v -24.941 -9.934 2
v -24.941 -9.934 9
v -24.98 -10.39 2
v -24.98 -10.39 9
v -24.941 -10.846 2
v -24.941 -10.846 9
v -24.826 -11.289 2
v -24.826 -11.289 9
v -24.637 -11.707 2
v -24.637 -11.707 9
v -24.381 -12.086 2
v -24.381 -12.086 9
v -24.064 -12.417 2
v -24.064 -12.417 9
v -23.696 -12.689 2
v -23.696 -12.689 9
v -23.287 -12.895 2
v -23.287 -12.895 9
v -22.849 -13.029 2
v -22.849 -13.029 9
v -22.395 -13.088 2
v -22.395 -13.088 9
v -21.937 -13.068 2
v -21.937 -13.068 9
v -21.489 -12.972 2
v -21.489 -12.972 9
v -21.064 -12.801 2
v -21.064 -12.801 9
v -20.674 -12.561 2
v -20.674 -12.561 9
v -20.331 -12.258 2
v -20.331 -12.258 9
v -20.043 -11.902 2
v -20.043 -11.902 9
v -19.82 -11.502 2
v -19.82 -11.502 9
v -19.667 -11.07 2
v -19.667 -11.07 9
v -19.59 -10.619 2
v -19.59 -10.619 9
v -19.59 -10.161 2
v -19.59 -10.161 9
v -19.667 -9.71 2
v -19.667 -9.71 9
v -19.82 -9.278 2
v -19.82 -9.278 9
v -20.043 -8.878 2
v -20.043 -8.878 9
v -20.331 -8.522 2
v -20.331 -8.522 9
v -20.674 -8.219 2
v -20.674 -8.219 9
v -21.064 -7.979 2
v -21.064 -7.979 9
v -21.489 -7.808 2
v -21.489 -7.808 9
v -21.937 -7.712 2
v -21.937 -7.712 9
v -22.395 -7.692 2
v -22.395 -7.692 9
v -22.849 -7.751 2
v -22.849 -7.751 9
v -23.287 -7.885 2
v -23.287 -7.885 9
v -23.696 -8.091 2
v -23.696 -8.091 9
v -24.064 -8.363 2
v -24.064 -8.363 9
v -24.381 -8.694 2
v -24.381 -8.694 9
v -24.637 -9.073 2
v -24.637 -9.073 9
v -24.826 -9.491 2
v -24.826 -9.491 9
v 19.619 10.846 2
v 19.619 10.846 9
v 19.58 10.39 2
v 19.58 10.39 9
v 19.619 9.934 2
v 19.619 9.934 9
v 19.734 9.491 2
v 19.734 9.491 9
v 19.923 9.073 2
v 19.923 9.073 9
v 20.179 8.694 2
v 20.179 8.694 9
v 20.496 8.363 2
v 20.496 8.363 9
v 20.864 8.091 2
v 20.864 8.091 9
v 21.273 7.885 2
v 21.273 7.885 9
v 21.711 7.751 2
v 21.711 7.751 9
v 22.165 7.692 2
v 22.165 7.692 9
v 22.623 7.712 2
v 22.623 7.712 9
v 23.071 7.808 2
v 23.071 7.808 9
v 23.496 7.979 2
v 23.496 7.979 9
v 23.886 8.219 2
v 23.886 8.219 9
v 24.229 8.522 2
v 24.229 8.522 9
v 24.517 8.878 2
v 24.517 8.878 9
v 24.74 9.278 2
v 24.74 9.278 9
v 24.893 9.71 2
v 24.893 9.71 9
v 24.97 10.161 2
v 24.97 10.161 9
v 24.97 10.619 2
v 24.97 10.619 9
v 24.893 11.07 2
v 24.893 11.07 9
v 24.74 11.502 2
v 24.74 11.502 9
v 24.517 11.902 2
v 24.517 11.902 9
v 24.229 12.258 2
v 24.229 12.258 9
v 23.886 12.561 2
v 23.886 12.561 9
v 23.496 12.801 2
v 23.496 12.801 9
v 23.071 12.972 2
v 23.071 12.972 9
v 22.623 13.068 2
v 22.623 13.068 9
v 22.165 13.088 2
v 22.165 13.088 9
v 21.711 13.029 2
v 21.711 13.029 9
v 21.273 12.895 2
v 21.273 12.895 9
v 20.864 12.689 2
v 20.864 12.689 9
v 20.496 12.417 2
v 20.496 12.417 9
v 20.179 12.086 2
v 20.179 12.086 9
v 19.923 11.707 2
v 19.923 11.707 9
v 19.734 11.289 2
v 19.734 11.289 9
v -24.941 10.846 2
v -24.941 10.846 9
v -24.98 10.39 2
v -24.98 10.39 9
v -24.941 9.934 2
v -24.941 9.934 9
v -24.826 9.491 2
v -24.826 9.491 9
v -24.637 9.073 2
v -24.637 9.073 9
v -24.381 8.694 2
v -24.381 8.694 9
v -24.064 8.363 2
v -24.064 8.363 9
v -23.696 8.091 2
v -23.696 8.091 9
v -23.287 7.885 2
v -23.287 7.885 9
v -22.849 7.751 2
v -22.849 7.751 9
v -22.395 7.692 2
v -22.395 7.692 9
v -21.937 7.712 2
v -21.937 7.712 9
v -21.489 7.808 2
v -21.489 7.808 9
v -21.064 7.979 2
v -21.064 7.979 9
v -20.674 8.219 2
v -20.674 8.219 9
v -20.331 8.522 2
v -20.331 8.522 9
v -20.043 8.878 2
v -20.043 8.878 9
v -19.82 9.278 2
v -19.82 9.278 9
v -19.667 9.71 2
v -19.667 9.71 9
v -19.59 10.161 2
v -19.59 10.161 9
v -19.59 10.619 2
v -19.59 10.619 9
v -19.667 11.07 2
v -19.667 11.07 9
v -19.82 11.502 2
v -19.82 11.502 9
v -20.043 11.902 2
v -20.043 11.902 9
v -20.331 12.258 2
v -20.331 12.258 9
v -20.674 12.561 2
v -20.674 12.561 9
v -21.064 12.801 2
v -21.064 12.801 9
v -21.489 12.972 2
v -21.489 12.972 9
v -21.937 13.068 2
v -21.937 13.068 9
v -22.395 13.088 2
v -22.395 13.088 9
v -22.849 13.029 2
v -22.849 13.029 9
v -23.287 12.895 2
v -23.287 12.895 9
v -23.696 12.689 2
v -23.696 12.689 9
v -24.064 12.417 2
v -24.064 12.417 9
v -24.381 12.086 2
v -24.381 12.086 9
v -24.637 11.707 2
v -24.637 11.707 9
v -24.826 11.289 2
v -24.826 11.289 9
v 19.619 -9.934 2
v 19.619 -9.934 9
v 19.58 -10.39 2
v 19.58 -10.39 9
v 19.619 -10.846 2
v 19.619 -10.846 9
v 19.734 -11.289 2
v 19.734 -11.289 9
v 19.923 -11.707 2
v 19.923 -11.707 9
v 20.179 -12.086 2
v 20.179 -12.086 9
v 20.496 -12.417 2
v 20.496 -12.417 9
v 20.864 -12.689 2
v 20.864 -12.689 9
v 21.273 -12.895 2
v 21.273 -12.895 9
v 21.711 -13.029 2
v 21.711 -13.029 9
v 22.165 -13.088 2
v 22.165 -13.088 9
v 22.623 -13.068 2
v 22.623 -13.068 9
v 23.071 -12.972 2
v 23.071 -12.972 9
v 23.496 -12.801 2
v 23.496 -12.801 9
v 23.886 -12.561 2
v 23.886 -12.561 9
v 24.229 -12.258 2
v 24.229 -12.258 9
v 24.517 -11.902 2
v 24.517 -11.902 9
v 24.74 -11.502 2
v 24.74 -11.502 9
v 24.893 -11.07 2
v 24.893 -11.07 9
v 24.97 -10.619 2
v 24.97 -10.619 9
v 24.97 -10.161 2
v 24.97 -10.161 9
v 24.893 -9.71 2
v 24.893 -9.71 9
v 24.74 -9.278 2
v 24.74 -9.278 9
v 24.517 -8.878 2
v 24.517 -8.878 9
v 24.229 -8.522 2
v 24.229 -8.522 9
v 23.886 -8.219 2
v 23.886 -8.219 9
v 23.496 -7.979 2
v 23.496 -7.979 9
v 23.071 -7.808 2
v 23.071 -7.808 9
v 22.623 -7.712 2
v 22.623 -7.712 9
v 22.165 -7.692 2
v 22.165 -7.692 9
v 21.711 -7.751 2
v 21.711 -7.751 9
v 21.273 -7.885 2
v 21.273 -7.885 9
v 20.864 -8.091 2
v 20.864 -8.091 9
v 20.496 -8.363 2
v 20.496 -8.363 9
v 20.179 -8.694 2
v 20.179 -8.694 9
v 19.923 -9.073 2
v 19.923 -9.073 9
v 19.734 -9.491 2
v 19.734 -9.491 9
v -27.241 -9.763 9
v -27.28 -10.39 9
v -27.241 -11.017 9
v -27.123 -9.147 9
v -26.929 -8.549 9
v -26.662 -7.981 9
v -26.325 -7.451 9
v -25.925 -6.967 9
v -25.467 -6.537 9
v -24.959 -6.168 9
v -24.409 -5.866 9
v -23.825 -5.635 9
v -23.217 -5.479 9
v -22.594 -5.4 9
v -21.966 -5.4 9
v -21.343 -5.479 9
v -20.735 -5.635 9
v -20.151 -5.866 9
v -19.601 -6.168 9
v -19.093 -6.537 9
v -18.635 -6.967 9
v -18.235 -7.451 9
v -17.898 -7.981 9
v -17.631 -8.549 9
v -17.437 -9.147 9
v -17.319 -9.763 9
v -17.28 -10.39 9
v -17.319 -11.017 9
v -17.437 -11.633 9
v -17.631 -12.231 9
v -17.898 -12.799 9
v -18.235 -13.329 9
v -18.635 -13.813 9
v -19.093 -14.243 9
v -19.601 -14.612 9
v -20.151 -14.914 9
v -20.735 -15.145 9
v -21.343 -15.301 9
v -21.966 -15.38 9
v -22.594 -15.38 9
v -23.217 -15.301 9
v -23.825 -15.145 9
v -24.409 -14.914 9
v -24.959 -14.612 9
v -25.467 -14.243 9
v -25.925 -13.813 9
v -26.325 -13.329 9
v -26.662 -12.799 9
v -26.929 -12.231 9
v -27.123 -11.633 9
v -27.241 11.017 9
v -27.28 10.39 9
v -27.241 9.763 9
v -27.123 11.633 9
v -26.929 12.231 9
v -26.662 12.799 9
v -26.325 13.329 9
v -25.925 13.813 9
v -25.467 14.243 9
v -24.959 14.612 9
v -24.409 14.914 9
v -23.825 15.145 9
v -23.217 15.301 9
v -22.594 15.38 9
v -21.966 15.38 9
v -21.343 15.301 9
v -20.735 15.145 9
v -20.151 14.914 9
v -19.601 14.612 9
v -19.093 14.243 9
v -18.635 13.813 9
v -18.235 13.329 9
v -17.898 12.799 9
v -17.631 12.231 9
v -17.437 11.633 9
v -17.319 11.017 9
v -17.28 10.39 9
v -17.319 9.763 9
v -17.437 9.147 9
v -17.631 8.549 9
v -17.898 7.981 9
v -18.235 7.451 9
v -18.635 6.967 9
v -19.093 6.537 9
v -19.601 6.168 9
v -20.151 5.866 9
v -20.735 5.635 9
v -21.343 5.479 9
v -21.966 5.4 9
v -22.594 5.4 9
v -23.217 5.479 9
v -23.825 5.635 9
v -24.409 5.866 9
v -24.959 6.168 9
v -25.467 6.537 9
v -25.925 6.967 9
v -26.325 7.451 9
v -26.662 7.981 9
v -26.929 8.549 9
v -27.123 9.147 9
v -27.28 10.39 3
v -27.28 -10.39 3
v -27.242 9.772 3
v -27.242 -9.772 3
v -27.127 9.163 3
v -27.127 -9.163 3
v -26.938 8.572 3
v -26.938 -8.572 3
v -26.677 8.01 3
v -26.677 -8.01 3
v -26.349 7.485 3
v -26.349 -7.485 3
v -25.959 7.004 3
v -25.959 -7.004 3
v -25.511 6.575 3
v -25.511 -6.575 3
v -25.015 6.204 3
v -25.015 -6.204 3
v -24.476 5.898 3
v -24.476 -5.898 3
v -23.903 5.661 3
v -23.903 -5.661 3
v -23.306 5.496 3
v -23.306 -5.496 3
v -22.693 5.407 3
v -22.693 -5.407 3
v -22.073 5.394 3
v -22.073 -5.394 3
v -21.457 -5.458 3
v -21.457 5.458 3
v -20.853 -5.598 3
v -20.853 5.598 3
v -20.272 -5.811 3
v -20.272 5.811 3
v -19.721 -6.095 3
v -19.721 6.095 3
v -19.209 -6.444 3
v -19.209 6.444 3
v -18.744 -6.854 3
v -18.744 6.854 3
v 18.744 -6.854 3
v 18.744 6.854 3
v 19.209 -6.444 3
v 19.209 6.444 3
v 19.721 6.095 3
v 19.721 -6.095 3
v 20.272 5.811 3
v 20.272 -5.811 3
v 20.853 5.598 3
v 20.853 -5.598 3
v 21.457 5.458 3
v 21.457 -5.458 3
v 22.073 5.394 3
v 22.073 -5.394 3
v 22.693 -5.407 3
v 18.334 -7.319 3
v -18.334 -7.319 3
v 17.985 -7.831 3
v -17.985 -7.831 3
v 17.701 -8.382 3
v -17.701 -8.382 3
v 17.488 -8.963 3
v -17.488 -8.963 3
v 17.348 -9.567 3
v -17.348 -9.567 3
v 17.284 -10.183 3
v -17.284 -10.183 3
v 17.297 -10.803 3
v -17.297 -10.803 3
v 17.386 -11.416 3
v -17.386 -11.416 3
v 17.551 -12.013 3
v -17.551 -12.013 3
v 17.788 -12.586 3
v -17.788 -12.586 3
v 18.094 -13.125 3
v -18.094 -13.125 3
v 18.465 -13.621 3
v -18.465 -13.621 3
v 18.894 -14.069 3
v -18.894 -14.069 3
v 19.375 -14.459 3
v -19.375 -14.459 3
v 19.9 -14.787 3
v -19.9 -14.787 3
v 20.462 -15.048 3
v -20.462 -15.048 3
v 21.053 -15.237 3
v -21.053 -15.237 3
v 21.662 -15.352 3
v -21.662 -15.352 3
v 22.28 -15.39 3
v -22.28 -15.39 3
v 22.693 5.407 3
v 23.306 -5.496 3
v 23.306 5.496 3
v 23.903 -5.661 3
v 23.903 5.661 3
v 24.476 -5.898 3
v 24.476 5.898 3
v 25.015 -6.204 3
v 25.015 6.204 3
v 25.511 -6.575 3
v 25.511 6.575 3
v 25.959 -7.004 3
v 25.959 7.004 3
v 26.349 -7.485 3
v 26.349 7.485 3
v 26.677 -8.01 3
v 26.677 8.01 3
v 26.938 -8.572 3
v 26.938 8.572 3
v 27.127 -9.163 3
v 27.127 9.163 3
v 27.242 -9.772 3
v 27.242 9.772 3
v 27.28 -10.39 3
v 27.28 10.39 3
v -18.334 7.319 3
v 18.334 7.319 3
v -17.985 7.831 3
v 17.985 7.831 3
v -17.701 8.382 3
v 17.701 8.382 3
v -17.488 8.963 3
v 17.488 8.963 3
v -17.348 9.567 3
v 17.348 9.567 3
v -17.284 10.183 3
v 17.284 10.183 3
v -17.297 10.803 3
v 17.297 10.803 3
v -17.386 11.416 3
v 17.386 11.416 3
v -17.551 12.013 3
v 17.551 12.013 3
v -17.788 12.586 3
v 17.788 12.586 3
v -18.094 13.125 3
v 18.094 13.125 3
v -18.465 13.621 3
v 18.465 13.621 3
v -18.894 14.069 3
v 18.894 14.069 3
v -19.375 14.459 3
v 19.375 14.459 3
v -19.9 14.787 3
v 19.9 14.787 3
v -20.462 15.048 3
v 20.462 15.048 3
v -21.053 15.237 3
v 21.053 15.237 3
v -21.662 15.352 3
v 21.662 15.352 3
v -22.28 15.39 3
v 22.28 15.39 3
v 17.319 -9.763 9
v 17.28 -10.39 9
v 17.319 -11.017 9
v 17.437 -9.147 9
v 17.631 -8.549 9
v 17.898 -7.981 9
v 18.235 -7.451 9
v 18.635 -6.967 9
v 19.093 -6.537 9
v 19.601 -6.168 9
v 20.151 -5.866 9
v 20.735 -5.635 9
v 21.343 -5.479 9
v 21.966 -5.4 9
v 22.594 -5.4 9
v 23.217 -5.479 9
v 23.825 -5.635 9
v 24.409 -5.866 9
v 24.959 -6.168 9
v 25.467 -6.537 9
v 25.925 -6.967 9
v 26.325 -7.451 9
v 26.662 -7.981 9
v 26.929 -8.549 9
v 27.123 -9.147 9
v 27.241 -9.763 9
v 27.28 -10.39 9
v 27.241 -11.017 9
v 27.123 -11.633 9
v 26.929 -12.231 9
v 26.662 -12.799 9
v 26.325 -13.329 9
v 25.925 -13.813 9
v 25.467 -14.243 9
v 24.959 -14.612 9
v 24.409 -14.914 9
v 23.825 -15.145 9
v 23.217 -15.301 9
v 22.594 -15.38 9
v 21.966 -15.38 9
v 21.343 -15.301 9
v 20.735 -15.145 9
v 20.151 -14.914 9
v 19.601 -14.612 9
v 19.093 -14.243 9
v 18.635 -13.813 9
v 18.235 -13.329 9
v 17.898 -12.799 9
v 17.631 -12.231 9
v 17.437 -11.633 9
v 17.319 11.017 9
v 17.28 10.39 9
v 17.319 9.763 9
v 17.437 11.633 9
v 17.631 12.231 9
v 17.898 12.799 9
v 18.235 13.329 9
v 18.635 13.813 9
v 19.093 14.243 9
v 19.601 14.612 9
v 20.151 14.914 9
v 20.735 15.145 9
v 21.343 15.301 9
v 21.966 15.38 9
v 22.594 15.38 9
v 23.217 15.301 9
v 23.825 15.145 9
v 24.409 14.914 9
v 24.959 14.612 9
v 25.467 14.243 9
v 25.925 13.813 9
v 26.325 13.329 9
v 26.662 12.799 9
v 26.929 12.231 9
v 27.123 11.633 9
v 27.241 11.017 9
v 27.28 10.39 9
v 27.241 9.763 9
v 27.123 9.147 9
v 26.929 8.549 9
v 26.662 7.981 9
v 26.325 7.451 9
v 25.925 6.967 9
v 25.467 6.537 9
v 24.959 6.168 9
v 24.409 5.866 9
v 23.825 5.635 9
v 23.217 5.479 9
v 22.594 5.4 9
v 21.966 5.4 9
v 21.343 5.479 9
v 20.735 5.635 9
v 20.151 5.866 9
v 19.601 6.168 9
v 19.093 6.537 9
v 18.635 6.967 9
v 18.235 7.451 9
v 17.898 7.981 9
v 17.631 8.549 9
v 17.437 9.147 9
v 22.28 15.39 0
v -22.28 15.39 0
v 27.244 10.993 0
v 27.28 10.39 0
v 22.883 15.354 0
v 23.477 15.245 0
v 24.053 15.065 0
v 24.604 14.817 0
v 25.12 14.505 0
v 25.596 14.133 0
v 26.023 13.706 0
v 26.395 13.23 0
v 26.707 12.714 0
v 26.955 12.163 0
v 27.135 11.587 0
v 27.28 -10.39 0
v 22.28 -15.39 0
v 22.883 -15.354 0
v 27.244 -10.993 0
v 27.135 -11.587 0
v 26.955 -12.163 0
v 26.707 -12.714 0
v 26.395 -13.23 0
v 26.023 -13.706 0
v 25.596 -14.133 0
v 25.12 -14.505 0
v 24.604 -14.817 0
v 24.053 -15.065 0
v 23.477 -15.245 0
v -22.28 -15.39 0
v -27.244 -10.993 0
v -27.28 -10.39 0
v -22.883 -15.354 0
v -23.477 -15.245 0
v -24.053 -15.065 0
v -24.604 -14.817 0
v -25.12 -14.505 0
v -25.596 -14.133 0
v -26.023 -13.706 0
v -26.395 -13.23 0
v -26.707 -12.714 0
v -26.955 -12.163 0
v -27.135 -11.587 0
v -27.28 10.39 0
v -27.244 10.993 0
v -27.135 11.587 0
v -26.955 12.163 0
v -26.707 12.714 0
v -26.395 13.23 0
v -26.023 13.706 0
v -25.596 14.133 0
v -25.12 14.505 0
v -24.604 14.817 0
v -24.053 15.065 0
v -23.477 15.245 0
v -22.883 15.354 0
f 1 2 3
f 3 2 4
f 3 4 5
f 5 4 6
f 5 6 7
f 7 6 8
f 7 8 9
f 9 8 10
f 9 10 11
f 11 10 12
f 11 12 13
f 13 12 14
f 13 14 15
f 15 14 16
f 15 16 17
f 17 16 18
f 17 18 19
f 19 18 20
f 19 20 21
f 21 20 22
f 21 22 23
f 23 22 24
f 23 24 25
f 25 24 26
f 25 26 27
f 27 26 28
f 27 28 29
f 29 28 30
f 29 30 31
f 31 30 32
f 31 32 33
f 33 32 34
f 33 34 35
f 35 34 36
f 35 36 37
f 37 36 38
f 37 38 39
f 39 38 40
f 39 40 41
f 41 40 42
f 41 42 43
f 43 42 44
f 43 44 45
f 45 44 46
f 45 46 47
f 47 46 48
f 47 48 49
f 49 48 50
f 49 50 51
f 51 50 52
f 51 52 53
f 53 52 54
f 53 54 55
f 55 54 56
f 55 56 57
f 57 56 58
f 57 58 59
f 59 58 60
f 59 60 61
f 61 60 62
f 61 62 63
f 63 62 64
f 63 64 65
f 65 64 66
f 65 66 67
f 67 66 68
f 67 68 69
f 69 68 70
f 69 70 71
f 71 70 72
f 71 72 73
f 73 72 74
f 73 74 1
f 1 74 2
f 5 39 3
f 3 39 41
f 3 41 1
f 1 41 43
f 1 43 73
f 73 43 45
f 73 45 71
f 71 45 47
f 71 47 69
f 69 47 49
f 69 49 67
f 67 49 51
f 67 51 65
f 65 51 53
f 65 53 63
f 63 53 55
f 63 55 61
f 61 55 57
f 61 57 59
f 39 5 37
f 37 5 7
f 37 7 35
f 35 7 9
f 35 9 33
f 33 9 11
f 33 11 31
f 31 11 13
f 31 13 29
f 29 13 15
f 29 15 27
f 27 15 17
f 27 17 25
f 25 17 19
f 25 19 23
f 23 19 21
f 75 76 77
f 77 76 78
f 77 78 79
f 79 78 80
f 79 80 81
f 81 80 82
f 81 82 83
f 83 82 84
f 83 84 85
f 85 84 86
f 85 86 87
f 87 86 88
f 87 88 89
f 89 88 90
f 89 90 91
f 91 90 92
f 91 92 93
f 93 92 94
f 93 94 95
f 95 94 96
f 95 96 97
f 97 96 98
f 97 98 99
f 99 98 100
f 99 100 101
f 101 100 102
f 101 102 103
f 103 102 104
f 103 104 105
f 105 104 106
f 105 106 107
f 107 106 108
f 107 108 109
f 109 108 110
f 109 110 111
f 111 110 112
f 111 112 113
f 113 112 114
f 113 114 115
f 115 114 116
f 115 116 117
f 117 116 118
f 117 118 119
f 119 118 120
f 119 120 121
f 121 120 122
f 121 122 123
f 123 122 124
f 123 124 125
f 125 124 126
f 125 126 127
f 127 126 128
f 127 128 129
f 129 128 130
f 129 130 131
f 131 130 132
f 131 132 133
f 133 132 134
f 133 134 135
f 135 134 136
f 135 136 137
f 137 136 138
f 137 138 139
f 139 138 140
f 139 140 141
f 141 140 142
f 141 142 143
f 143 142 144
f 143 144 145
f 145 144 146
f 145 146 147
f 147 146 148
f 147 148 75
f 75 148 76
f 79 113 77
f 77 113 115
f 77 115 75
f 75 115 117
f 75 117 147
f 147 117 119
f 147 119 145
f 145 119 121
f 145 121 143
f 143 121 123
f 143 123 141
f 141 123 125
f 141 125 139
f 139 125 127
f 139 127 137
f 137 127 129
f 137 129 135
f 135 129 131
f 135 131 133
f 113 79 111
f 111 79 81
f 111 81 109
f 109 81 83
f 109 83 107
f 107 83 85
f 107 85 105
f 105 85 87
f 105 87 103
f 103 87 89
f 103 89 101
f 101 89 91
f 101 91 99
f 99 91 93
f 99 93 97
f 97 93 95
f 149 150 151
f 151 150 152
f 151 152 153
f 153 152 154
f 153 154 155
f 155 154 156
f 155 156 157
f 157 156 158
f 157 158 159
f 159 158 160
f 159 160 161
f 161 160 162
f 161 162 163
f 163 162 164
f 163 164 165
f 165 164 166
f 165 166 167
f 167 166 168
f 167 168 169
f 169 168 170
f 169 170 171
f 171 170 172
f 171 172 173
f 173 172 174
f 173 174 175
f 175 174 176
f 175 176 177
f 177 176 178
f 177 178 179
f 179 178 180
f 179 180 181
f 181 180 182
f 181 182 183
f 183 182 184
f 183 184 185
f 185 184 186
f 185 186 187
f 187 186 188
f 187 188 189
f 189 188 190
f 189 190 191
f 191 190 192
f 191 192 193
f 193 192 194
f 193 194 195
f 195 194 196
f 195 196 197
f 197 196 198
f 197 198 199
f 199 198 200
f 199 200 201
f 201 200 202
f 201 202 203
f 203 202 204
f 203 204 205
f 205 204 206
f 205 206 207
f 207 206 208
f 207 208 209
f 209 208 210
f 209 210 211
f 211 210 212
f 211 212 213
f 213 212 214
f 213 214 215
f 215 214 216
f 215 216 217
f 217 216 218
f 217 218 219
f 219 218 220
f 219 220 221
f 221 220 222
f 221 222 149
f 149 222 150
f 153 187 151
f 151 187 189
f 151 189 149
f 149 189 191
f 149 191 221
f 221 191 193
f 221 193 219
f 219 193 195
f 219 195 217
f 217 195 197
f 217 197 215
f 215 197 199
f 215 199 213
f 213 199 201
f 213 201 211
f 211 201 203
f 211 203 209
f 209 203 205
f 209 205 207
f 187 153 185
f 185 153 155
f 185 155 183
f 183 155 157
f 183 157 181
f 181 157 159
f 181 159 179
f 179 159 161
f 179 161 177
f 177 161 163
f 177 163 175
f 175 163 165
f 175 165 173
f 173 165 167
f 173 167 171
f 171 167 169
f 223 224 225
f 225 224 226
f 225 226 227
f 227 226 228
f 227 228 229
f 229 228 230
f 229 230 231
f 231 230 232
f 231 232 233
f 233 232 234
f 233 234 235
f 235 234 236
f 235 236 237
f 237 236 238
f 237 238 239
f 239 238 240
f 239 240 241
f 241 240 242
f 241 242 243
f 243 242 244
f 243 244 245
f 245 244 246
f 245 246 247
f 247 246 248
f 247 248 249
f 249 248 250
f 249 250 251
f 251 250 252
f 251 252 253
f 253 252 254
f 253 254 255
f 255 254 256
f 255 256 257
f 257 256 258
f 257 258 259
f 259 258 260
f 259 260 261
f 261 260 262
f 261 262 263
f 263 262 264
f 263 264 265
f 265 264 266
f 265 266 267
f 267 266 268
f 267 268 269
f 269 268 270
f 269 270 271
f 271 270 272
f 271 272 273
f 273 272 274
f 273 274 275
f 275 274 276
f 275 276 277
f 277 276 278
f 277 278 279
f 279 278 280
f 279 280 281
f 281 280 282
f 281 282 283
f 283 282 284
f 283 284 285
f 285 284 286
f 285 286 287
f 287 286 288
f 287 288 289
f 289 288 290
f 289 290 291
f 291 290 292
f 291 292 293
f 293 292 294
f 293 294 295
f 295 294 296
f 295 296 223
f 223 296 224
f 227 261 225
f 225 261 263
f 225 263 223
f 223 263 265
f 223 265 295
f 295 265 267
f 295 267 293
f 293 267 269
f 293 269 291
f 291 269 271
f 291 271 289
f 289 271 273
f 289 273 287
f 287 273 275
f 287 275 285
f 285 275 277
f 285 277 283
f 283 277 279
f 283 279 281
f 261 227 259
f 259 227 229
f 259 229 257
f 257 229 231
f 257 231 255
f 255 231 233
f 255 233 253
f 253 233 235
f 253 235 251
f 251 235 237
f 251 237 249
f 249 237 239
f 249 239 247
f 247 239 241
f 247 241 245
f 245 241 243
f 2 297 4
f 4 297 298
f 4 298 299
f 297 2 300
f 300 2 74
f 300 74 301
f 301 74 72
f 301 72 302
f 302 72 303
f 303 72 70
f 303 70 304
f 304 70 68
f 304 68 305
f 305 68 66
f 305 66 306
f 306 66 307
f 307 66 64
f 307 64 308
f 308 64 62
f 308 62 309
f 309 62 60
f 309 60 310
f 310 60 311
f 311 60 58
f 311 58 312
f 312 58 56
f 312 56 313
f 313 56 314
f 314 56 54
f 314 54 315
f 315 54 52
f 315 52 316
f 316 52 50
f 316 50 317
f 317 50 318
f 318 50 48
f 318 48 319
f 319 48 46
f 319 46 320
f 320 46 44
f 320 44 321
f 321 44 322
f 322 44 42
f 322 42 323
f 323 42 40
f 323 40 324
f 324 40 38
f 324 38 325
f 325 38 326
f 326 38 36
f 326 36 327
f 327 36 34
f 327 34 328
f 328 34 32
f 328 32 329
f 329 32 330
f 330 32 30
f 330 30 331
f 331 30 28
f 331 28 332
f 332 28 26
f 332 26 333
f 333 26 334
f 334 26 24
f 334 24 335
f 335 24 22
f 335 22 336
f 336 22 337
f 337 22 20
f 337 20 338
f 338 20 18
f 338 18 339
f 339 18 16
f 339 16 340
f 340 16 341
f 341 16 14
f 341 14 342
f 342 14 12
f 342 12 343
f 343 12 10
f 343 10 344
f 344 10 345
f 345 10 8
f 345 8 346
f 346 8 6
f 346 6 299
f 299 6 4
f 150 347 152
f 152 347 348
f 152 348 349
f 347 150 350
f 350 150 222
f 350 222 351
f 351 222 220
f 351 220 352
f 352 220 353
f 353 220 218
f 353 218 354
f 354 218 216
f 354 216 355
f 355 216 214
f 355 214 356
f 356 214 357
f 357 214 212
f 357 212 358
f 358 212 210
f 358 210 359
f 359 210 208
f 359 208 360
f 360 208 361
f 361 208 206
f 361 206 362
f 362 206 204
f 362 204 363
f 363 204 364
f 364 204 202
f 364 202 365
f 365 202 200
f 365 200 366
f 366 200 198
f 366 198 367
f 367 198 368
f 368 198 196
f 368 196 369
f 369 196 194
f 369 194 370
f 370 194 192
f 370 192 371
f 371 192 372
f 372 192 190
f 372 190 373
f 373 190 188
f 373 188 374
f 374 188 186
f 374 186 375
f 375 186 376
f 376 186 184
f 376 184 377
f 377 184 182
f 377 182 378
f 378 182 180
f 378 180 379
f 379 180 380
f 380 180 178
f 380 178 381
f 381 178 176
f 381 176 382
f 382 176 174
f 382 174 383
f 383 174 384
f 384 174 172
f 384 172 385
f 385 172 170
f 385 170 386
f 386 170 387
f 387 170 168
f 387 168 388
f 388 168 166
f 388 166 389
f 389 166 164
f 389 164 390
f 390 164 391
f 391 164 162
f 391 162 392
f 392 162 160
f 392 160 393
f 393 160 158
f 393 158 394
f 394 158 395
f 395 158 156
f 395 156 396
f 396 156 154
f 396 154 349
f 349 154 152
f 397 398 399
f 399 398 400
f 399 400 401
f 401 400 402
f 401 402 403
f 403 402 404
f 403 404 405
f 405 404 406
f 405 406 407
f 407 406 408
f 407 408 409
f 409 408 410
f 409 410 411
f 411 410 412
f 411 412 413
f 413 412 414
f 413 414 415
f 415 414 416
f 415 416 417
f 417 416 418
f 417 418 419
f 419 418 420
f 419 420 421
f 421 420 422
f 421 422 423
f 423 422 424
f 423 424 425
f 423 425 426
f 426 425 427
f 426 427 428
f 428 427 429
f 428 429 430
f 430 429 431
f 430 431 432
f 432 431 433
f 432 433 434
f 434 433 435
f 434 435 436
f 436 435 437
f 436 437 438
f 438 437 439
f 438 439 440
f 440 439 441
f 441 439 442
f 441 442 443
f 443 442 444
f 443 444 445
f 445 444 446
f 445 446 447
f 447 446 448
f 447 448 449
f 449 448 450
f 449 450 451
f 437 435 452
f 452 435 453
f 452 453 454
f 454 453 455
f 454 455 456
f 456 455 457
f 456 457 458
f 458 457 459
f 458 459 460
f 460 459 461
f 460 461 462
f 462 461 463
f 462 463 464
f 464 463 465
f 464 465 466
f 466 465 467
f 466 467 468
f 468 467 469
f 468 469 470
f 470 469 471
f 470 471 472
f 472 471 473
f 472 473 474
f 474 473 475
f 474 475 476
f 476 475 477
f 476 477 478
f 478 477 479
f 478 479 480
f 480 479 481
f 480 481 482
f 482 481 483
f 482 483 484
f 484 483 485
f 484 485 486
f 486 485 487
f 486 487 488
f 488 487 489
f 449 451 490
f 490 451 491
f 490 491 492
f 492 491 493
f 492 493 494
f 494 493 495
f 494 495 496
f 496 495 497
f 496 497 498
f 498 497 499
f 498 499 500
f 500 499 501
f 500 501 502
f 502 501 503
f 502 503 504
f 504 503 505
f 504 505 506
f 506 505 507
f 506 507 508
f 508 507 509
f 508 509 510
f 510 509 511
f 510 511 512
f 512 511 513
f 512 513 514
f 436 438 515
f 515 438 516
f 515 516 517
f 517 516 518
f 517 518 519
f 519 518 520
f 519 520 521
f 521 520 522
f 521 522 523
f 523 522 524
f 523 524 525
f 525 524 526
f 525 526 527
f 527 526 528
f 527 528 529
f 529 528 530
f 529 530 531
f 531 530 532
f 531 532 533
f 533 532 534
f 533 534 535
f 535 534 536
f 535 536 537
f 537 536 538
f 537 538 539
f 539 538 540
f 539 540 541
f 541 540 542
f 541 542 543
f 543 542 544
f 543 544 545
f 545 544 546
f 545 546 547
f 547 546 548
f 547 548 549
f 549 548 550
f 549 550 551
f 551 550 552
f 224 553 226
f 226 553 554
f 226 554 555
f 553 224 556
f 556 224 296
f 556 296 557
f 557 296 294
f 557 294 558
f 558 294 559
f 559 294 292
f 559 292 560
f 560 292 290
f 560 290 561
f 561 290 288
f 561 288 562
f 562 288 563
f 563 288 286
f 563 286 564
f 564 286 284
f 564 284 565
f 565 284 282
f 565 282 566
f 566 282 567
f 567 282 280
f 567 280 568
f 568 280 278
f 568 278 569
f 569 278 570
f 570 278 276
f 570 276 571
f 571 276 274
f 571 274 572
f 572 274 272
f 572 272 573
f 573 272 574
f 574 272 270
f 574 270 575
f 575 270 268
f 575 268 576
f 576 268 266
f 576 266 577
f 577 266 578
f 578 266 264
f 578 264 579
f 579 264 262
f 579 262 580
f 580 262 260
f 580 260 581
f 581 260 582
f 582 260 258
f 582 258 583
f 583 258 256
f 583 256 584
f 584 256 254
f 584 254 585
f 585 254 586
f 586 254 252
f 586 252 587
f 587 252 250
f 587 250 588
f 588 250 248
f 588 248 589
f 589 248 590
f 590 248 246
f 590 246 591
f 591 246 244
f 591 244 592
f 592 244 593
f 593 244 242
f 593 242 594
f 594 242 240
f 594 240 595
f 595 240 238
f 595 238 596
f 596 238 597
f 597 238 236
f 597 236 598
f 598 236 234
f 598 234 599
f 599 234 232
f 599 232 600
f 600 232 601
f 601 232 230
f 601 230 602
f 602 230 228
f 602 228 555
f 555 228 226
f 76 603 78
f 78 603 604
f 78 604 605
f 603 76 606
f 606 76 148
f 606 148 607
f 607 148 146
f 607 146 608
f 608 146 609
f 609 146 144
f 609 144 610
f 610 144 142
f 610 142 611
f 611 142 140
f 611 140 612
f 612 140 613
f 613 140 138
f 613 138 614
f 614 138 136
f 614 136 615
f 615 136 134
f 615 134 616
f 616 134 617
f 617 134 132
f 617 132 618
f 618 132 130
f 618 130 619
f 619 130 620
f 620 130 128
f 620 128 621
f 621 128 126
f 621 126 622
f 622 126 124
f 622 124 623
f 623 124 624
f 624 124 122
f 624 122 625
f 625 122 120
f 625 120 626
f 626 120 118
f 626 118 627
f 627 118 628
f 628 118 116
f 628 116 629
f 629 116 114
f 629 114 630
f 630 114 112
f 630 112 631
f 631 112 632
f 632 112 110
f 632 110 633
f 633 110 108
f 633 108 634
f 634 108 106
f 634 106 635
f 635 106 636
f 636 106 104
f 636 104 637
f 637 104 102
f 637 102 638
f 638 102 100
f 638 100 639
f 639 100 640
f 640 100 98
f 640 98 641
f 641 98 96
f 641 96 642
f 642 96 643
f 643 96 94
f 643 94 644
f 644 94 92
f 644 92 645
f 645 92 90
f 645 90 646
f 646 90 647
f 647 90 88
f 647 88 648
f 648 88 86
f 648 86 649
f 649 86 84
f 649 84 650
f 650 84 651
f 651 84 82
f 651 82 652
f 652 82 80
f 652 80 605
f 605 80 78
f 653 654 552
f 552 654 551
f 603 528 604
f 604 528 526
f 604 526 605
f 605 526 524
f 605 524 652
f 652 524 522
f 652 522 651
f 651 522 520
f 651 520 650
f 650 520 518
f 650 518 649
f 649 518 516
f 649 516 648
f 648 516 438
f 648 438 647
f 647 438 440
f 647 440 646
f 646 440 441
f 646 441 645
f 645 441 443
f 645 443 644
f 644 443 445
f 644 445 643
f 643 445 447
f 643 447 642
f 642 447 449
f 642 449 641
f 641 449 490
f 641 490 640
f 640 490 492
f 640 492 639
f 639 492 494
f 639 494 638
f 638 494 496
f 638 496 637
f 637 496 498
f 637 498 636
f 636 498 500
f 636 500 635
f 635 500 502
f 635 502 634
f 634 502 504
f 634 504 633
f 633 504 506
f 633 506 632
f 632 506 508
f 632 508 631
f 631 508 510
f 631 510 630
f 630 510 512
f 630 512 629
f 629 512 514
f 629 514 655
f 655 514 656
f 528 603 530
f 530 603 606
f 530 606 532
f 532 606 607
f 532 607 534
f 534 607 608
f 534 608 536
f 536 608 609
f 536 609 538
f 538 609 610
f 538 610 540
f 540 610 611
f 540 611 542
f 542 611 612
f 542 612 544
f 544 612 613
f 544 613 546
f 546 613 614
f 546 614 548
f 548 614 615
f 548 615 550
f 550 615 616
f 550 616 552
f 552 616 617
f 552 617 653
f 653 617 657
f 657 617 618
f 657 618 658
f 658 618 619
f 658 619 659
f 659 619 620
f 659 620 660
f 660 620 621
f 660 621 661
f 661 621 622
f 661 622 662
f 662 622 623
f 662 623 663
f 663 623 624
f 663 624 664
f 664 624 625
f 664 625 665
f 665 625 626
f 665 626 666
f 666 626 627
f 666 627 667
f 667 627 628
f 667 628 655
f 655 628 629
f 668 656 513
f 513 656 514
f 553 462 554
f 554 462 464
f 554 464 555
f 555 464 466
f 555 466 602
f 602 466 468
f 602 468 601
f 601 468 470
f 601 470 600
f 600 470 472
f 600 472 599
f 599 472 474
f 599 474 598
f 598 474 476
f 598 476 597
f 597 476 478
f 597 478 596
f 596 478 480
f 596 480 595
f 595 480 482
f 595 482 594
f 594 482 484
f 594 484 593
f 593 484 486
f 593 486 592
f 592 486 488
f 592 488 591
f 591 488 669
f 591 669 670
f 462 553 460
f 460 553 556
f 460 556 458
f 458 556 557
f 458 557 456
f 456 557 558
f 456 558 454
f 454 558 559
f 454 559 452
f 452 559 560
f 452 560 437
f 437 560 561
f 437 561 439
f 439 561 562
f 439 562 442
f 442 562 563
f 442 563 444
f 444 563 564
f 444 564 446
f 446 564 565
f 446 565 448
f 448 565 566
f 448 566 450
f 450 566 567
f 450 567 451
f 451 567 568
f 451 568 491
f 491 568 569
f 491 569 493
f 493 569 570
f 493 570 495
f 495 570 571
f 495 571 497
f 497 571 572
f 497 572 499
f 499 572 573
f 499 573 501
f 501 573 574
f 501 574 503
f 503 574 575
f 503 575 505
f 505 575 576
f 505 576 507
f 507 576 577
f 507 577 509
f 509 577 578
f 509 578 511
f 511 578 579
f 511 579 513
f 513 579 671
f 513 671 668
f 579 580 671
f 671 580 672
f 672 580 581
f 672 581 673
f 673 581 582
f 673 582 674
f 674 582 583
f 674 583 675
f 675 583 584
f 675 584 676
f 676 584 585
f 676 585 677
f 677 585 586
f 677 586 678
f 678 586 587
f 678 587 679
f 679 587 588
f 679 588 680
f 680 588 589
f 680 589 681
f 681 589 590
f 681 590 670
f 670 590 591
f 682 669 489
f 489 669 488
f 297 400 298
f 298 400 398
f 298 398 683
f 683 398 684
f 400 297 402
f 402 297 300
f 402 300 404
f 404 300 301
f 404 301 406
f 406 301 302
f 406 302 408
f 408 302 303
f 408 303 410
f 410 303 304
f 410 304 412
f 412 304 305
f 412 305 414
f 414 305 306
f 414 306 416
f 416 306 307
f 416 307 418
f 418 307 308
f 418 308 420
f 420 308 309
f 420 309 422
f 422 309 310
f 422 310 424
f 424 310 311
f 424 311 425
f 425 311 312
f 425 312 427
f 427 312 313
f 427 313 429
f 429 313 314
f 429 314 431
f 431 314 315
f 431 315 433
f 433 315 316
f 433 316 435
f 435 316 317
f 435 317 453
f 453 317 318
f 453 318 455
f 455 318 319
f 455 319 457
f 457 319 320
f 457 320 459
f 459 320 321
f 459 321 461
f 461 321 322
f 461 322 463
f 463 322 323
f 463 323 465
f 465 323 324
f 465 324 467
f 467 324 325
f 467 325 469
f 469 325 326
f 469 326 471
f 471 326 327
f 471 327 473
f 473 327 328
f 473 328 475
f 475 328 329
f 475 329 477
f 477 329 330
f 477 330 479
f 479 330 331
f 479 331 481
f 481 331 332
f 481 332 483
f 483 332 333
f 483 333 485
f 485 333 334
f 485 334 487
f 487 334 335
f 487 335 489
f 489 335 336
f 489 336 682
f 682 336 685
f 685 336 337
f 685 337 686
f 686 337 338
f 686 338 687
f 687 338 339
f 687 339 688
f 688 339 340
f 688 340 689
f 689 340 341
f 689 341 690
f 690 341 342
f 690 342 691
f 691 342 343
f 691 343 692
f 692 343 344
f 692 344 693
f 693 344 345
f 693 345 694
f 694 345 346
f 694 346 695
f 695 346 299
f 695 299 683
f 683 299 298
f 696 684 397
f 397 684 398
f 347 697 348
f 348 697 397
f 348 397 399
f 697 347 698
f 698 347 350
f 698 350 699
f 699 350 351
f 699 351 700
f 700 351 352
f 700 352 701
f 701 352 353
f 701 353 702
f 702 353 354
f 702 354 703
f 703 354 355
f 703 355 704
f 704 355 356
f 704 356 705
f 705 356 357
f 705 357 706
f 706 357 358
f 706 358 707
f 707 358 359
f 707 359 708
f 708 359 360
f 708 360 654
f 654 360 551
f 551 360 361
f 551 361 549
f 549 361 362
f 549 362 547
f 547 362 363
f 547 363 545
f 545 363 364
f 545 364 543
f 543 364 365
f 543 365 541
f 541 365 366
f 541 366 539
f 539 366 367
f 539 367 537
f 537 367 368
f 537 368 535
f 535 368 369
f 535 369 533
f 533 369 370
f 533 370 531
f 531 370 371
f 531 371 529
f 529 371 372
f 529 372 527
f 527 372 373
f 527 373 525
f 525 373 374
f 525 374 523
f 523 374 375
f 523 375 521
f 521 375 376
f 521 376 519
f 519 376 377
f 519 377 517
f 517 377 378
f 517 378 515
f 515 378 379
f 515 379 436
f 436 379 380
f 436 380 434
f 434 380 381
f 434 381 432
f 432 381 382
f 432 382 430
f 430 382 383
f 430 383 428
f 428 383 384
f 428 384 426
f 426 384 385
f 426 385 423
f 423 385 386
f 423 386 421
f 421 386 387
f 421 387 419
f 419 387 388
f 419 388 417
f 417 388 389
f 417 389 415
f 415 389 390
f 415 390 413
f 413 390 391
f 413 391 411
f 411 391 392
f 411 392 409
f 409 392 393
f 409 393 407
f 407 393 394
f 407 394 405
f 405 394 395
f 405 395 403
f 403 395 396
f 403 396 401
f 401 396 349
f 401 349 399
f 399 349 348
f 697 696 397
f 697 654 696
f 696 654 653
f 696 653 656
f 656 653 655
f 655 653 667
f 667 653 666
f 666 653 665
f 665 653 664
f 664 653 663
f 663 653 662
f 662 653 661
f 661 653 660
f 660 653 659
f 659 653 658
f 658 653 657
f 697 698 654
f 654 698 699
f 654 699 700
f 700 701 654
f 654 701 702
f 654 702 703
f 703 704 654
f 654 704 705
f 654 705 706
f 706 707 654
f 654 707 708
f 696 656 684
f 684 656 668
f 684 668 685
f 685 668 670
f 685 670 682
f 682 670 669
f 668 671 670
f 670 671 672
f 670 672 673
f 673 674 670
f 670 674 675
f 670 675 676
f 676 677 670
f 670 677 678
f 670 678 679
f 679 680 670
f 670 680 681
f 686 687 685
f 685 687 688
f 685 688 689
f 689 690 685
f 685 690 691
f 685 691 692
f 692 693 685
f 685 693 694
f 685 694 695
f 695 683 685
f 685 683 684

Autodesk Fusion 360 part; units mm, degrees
sketch "Sketch1" plane through (0, 0, 0) normal (0, 0, 1) x (1, 0, 0)
  line L0 (22.28, -10.39) -> (-22.28, -10.39) construction
  line L1 (-22.28, -10.39) -> (-22.28, 10.39) construction
  line L2 (-22.28, 10.39) -> (22.28, 10.39) construction
  line L3 (22.28, 10.39) -> (22.28, -10.39) construction
  line L4 (22.28, -10.39) -> (-22.28, 10.39) construction
  line L5 (-22.28, -10.39) -> (22.28, 10.39) construction
  circle A0 centre (22.28, 10.39) radius 5
  circle A1 centre (22.28, -10.39) radius 5
  circle A2 centre (-22.28, -10.39) radius 5
  circle A3 centre (-22.28, 10.39) radius 5
  line L6 (-22.28, 15.39) -> (22.28, 15.39)
  line L7 (-27.28, 10.39) -> (-27.28, -10.39)
  line L8 (27.28, 10.39) -> (27.28, -10.39)
  line L9 (-22.28, -15.39) -> (22.28, -15.39)
  circle A4 centre (22.28, 10.39) radius 2.7
  circle A5 centre (-22.28, 10.39) radius 2.7
  circle A6 centre (-22.28, -10.39) radius 2.7
  circle A7 centre (22.28, -10.39) radius 2.7
  dimension "d1" = 44.56
  dimension "d2" = 20.78
  dimension "d3" = 10
  dimension "d4" = 10
  dimension "d5" = 10
  dimension "d6" = 10
  dimension "d12" = 5.4
  dimension "d13" = 5.4
  dimension "d14" = 5.4
  dimension "d15" = 5.4
extrude "Extrude1" add sketch "Sketch1" along normal blind 3 contours A0 | A0 A1 A2 A3 L6 L7 L8 L9 | A1 | A3 | A2 | A4 | A5 | A6 | A7
extrude "Extrude2" add sketch "Sketch1" along normal blind 6 from surface at 3 contours A0 | A1 | A3 | A2 | A4 | A5 | A6 | A7
extrude "Extrude3" cut sketch "Sketch1" against normal blind 7 from surface at 9 contours A4 | A5 | A6 | A7
equation "d4 = d3"
equation "d5 = d3"
equation "d6 = d3"
equation "d13 = d12"
equation "d14 = d12"
equation "d15 = d12"
